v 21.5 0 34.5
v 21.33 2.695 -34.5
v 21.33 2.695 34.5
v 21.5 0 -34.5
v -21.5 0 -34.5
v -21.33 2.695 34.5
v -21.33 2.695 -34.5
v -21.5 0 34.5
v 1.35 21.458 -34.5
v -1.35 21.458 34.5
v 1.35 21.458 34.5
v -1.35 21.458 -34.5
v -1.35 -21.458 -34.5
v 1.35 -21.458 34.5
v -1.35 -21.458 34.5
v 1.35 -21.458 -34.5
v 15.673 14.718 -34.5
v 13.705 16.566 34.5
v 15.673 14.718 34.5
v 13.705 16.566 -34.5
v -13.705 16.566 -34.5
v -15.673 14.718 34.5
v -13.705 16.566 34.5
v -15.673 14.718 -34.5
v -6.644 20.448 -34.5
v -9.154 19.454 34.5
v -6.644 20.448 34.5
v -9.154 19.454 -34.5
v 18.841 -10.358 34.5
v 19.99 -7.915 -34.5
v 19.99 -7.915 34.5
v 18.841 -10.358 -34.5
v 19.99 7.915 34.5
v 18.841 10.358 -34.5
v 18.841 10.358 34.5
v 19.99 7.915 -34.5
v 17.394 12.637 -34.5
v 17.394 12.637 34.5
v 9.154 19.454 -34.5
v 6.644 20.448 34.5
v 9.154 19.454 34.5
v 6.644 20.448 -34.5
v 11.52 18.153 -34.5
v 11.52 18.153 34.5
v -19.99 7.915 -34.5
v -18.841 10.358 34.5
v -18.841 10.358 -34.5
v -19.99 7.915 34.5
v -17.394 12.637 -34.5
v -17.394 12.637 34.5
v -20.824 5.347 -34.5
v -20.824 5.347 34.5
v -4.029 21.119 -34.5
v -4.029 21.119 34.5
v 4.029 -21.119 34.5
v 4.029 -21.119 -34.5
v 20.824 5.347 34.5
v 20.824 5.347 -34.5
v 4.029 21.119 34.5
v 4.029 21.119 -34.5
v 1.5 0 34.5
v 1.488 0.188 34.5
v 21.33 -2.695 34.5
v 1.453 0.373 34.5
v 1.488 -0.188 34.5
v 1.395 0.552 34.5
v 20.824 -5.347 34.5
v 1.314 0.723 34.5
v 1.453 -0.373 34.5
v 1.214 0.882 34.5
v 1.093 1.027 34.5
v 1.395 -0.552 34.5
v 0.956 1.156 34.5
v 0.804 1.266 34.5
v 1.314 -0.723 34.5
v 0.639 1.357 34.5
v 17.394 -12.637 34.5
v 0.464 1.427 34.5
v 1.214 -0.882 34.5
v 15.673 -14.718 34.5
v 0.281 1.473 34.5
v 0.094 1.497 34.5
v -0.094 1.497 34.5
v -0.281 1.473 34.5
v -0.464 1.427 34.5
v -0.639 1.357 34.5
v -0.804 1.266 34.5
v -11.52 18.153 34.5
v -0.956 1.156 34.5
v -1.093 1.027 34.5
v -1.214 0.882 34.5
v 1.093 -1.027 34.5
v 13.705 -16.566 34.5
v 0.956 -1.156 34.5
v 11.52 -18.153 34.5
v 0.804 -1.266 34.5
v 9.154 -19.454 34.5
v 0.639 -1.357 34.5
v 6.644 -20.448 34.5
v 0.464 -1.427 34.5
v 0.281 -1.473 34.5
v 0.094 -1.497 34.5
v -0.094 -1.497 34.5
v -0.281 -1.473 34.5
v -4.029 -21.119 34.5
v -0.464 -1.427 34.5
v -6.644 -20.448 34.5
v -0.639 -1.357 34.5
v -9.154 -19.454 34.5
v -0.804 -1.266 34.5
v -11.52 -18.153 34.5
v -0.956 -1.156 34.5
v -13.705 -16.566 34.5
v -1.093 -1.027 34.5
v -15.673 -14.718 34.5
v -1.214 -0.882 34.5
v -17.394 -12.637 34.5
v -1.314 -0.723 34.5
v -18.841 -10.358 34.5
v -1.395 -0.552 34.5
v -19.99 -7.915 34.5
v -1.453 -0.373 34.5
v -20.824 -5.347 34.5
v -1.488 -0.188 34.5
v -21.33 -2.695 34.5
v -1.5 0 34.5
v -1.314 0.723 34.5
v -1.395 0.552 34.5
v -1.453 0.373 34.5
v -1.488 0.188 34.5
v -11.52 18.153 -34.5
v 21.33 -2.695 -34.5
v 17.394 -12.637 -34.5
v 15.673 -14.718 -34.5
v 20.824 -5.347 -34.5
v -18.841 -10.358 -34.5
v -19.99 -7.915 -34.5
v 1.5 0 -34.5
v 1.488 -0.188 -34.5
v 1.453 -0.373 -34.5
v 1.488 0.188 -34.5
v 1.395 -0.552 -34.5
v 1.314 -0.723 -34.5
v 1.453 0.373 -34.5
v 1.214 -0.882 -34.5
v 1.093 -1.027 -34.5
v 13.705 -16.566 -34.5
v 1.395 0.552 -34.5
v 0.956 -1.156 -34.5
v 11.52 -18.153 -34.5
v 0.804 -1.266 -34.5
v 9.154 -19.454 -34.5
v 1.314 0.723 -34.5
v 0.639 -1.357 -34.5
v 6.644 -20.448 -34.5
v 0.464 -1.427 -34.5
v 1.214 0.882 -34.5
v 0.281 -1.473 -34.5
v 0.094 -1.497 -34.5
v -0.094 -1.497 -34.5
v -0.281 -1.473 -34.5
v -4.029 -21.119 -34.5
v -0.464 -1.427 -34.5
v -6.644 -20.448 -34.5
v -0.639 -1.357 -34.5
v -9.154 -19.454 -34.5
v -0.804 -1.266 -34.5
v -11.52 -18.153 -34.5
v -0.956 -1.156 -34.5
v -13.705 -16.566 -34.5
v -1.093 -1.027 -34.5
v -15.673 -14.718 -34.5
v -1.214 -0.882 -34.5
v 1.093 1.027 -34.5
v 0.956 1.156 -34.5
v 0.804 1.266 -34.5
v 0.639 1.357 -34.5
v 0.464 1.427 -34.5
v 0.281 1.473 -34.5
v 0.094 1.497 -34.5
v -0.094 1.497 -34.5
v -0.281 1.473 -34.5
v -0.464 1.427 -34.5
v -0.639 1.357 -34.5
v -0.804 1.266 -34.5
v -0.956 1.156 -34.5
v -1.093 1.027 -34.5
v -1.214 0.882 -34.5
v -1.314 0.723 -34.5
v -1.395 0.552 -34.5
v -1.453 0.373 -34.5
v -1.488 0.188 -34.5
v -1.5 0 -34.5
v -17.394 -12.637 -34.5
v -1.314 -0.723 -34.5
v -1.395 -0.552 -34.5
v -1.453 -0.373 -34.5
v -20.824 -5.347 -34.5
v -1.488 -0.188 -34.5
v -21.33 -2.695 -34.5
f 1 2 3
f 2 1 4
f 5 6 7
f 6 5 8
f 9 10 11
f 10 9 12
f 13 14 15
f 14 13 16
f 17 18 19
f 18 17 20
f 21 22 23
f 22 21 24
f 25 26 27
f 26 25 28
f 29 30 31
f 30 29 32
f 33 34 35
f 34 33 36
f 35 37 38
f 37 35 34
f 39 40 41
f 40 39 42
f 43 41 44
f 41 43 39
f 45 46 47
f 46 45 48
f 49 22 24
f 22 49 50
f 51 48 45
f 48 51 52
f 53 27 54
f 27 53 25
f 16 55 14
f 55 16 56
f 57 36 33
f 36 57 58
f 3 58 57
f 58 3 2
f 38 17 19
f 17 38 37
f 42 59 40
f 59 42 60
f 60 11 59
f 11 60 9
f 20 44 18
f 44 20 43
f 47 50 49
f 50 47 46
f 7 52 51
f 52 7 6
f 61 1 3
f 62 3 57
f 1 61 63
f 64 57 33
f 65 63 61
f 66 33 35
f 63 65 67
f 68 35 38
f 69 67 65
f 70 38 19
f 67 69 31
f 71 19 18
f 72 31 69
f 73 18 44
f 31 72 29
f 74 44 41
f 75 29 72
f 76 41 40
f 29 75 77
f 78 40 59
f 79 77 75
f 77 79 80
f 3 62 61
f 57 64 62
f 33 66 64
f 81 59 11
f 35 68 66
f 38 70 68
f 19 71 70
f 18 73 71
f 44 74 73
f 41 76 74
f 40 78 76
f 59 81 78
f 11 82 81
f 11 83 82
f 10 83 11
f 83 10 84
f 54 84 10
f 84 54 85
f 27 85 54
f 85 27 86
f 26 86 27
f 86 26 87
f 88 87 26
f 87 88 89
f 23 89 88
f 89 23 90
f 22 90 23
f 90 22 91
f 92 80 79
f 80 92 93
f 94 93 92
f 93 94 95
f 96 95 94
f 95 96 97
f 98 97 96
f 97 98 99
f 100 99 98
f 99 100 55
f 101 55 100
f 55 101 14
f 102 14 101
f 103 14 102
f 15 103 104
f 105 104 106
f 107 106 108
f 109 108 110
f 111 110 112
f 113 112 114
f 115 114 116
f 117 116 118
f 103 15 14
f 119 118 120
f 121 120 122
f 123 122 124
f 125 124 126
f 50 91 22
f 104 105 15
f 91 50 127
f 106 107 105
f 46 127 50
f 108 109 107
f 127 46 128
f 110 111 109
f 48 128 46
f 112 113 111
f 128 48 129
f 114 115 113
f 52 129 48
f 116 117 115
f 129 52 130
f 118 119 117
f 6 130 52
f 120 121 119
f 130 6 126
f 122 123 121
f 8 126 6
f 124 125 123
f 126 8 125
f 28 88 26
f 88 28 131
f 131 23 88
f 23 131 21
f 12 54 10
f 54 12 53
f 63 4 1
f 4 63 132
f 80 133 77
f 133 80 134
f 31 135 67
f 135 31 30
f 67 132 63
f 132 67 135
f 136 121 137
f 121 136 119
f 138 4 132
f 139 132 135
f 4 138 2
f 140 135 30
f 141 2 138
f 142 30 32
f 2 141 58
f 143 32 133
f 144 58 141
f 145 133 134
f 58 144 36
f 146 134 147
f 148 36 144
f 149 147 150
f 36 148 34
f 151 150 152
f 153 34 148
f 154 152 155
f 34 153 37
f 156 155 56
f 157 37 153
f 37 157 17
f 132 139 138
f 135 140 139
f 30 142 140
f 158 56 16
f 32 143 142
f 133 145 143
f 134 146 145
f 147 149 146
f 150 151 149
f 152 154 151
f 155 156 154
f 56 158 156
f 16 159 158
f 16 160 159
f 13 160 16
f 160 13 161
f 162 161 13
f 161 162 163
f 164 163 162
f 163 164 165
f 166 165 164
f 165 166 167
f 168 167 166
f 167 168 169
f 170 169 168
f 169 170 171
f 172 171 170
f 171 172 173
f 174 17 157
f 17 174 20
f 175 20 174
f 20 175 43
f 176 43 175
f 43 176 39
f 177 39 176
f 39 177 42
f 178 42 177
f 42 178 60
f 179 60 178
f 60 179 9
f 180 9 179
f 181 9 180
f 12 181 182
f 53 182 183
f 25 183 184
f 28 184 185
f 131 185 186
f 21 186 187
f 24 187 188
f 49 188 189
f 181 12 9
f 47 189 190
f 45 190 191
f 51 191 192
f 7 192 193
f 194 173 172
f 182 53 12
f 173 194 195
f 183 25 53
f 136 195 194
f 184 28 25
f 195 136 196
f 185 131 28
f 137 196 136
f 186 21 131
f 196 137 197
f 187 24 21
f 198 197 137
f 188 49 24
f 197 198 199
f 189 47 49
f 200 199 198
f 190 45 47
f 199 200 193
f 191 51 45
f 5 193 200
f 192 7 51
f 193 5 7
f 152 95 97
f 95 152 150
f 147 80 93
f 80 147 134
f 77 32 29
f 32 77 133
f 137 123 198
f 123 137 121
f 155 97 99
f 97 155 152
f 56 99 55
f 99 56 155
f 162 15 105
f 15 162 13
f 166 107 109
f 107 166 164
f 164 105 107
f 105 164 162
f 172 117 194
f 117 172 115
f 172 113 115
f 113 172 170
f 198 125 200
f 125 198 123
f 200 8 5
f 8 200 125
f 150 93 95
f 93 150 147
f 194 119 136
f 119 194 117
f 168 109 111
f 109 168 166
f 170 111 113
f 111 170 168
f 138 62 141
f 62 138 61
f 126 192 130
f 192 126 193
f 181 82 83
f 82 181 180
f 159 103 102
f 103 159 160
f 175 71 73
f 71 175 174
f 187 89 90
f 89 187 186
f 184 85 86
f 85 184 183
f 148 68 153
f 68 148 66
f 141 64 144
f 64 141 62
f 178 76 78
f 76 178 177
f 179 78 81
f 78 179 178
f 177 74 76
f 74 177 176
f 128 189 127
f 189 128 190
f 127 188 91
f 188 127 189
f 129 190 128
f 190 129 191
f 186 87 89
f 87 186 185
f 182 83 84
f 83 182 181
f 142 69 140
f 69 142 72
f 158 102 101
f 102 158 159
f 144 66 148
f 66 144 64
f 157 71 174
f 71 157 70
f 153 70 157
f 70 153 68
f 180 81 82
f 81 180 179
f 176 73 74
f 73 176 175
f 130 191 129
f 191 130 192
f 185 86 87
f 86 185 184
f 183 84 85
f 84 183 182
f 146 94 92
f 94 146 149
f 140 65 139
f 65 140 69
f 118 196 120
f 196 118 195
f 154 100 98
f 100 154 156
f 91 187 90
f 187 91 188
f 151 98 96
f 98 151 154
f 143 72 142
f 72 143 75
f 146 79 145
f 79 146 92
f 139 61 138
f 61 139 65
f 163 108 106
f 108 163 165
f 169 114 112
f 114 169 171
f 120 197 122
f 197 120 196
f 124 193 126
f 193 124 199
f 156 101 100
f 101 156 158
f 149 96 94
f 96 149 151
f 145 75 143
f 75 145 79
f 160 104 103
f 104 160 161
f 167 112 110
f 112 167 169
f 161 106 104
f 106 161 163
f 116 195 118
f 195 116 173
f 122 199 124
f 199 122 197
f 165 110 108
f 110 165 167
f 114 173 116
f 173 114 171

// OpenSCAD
$fn = 50;


difference() {
	union() {
		translate(v = [0, 0, -34.5000000000]) {
			cylinder(h = 69, r = 21.5000000000);
		}
	}
	union() {
		translate(v = [0, 0, -100.0000000000]) {
			cylinder(h = 200, r = 1.5000000000);
		}
	}
}
